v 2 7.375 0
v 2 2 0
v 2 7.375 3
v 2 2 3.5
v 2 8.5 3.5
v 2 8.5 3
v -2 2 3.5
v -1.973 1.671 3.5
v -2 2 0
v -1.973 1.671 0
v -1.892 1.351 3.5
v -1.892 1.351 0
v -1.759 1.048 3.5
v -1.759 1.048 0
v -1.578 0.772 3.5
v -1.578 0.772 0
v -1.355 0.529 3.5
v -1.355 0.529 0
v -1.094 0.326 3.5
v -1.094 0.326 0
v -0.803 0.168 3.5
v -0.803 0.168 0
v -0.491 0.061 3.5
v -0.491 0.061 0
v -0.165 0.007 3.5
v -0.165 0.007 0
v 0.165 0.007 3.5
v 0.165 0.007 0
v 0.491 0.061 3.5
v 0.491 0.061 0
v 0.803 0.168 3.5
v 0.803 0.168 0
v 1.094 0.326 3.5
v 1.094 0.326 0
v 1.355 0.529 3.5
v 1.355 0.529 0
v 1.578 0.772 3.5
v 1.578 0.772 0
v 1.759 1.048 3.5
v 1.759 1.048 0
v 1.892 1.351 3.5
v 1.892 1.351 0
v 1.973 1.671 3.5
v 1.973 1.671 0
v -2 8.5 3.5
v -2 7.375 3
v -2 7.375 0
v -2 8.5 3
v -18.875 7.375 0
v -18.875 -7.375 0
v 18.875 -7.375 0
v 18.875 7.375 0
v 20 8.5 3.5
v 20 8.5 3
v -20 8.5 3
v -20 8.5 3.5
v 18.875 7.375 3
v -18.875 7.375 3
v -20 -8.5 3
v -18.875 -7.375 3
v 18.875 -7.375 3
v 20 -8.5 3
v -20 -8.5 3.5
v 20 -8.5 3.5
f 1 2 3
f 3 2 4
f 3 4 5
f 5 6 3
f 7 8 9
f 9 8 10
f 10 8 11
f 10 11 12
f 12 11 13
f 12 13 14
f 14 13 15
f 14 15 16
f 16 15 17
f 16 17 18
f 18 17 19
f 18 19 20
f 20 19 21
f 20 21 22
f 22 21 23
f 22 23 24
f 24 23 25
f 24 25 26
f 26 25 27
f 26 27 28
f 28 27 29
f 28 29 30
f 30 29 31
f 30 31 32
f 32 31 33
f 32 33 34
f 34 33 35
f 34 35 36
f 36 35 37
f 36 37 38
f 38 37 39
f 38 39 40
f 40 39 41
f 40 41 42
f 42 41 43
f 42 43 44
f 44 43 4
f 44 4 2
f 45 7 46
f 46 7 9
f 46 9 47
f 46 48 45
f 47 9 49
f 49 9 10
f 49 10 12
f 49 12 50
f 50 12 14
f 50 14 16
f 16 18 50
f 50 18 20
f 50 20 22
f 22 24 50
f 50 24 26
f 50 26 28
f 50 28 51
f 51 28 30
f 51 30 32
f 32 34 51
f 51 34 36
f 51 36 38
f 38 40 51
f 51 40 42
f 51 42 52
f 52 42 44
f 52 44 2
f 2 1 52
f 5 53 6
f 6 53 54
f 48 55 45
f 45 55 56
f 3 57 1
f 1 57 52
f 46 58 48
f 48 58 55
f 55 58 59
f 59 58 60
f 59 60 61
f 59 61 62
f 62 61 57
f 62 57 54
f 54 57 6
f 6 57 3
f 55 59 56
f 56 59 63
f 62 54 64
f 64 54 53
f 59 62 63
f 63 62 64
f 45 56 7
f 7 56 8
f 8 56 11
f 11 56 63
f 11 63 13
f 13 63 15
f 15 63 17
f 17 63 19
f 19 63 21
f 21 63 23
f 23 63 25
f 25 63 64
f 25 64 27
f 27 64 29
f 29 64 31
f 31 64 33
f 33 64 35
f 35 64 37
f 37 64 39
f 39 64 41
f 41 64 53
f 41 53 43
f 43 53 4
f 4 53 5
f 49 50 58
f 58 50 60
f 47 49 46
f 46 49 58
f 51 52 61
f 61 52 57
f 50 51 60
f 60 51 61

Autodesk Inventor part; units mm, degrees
ref_plane "YZ Plane" through (0, 0, 0) normal (1, 0, 0) x (0, 1, 0)
ref_plane "XZ Plane" through (0, 0, 0) normal (0, 1, 0) x (-1, 0, 0)
ref_plane "XY Plane" through (0, 0, 0) normal (0, 0, 1) x (1, 0, 0)
sketch "Sketch1" plane through (0, 0, 0) normal (0, 0, 1) x (1, 0, 0)
  line L0 (-18.875, 7.375) -> (18.875, 7.375)
  line L1 (18.875, 7.375) -> (18.875, -7.375)
  line L2 (18.875, -7.375) -> (-18.875, -7.375)
  line L3 (-18.875, -7.375) -> (-18.875, 7.375)
  line L4 (-18.875, 7.375) -> (18.875, -7.375) construction
  line L5 (18.875, 7.375) -> (-18.875, -7.375) construction
  point P0 (0, 0)
  dimension "d0" = 37.75
  dimension "d1" = 14.75
extrude "Extrusion1" add sketch "Sketch1" along normal blind 3
sketch "Sketch2" plane through (0, 0, 3) normal (0, 0, 1) x (1, 0, 0)
  line L0 (-18.875, -7.375) -> (18.875, -7.375) projected
  line L1 (18.875, -7.375) -> (18.875, 7.375) projected
  line L2 (18.875, 7.375) -> (-18.875, 7.375) projected
  line L3 (-18.875, 7.375) -> (-18.875, -7.375) projected
  line L4 (-20, 8.5) -> (20, 8.5)
  line L5 (20, 8.5) -> (20, -8.5)
  line L6 (20, -8.5) -> (-20, -8.5)
  line L7 (-20, -8.5) -> (-20, 8.5)
  line L8 (-20, 8.5) -> (20, -8.5) construction
  line L9 (20, 8.5) -> (-20, -8.5) construction
  point P0 (0, 0)
  dimension "d4" = 40
  dimension "d5" = 17
extrude "Extrusion2" add sketch "Sketch2" along normal blind 0.5 contours L3 L2 L1 L0 | L4 L5 L6 L7
sketch "Sketch3" plane through (0, 0, 3.5) normal (0, 0, 1) x (1, 0, 0)
  line L0 (-20, -8.5) -> (20, -8.5) projected
  line L1 (20, -8.5) -> (20, 8.5) projected
  line L2 (20, 8.5) -> (-20, 8.5) projected
  line L3 (-20, 8.5) -> (-20, -8.5) projected
  line L4 (20, 8.5) -> (-20, 8.5) projected
  line L5 (-2, 0) -> (2, 0)
  line L6 (2, 0) -> (2, 8.5)
  line L7 (2, 8.5) -> (-2, 8.5)
  line L8 (-2, 8.5) -> (-2, 0)
  line L9 (0, -11.9) -> (0, 11.9) projected
  line L10 (-28, 0) -> (28, 0) projected
  point P0 (0, 0)
  dimension "d8" = 4
extrude "Extrusion3" cut sketch "Sketch3" against normal through all contours L9 L2 L6 L5 | L5 L8 L2 L9
fillet "Fillet1" radius 2 2 edges at (-2, 0, 1.75) (2, 0, 1.75)
equation "\"BendRadius\" = Thickness"
equation "\"BendReliefWidth\" = Thickness"
equation "\"BendReliefDepth\" = 0.5 * Thickness"
equation "\"CornerReliefSize\" = 4 * Thickness"
equation "\"MinimumRemnant\" = 2 * Thickness"
equation "\"TransitionRadius\" = BendRadius"
equation "\"JacobiRadiusSize\" = BendRadius"
equation "\"GapSize\" = Thickness"
equation "\"Thickness\" = 3.048"
properties part number "_3DPrint"
